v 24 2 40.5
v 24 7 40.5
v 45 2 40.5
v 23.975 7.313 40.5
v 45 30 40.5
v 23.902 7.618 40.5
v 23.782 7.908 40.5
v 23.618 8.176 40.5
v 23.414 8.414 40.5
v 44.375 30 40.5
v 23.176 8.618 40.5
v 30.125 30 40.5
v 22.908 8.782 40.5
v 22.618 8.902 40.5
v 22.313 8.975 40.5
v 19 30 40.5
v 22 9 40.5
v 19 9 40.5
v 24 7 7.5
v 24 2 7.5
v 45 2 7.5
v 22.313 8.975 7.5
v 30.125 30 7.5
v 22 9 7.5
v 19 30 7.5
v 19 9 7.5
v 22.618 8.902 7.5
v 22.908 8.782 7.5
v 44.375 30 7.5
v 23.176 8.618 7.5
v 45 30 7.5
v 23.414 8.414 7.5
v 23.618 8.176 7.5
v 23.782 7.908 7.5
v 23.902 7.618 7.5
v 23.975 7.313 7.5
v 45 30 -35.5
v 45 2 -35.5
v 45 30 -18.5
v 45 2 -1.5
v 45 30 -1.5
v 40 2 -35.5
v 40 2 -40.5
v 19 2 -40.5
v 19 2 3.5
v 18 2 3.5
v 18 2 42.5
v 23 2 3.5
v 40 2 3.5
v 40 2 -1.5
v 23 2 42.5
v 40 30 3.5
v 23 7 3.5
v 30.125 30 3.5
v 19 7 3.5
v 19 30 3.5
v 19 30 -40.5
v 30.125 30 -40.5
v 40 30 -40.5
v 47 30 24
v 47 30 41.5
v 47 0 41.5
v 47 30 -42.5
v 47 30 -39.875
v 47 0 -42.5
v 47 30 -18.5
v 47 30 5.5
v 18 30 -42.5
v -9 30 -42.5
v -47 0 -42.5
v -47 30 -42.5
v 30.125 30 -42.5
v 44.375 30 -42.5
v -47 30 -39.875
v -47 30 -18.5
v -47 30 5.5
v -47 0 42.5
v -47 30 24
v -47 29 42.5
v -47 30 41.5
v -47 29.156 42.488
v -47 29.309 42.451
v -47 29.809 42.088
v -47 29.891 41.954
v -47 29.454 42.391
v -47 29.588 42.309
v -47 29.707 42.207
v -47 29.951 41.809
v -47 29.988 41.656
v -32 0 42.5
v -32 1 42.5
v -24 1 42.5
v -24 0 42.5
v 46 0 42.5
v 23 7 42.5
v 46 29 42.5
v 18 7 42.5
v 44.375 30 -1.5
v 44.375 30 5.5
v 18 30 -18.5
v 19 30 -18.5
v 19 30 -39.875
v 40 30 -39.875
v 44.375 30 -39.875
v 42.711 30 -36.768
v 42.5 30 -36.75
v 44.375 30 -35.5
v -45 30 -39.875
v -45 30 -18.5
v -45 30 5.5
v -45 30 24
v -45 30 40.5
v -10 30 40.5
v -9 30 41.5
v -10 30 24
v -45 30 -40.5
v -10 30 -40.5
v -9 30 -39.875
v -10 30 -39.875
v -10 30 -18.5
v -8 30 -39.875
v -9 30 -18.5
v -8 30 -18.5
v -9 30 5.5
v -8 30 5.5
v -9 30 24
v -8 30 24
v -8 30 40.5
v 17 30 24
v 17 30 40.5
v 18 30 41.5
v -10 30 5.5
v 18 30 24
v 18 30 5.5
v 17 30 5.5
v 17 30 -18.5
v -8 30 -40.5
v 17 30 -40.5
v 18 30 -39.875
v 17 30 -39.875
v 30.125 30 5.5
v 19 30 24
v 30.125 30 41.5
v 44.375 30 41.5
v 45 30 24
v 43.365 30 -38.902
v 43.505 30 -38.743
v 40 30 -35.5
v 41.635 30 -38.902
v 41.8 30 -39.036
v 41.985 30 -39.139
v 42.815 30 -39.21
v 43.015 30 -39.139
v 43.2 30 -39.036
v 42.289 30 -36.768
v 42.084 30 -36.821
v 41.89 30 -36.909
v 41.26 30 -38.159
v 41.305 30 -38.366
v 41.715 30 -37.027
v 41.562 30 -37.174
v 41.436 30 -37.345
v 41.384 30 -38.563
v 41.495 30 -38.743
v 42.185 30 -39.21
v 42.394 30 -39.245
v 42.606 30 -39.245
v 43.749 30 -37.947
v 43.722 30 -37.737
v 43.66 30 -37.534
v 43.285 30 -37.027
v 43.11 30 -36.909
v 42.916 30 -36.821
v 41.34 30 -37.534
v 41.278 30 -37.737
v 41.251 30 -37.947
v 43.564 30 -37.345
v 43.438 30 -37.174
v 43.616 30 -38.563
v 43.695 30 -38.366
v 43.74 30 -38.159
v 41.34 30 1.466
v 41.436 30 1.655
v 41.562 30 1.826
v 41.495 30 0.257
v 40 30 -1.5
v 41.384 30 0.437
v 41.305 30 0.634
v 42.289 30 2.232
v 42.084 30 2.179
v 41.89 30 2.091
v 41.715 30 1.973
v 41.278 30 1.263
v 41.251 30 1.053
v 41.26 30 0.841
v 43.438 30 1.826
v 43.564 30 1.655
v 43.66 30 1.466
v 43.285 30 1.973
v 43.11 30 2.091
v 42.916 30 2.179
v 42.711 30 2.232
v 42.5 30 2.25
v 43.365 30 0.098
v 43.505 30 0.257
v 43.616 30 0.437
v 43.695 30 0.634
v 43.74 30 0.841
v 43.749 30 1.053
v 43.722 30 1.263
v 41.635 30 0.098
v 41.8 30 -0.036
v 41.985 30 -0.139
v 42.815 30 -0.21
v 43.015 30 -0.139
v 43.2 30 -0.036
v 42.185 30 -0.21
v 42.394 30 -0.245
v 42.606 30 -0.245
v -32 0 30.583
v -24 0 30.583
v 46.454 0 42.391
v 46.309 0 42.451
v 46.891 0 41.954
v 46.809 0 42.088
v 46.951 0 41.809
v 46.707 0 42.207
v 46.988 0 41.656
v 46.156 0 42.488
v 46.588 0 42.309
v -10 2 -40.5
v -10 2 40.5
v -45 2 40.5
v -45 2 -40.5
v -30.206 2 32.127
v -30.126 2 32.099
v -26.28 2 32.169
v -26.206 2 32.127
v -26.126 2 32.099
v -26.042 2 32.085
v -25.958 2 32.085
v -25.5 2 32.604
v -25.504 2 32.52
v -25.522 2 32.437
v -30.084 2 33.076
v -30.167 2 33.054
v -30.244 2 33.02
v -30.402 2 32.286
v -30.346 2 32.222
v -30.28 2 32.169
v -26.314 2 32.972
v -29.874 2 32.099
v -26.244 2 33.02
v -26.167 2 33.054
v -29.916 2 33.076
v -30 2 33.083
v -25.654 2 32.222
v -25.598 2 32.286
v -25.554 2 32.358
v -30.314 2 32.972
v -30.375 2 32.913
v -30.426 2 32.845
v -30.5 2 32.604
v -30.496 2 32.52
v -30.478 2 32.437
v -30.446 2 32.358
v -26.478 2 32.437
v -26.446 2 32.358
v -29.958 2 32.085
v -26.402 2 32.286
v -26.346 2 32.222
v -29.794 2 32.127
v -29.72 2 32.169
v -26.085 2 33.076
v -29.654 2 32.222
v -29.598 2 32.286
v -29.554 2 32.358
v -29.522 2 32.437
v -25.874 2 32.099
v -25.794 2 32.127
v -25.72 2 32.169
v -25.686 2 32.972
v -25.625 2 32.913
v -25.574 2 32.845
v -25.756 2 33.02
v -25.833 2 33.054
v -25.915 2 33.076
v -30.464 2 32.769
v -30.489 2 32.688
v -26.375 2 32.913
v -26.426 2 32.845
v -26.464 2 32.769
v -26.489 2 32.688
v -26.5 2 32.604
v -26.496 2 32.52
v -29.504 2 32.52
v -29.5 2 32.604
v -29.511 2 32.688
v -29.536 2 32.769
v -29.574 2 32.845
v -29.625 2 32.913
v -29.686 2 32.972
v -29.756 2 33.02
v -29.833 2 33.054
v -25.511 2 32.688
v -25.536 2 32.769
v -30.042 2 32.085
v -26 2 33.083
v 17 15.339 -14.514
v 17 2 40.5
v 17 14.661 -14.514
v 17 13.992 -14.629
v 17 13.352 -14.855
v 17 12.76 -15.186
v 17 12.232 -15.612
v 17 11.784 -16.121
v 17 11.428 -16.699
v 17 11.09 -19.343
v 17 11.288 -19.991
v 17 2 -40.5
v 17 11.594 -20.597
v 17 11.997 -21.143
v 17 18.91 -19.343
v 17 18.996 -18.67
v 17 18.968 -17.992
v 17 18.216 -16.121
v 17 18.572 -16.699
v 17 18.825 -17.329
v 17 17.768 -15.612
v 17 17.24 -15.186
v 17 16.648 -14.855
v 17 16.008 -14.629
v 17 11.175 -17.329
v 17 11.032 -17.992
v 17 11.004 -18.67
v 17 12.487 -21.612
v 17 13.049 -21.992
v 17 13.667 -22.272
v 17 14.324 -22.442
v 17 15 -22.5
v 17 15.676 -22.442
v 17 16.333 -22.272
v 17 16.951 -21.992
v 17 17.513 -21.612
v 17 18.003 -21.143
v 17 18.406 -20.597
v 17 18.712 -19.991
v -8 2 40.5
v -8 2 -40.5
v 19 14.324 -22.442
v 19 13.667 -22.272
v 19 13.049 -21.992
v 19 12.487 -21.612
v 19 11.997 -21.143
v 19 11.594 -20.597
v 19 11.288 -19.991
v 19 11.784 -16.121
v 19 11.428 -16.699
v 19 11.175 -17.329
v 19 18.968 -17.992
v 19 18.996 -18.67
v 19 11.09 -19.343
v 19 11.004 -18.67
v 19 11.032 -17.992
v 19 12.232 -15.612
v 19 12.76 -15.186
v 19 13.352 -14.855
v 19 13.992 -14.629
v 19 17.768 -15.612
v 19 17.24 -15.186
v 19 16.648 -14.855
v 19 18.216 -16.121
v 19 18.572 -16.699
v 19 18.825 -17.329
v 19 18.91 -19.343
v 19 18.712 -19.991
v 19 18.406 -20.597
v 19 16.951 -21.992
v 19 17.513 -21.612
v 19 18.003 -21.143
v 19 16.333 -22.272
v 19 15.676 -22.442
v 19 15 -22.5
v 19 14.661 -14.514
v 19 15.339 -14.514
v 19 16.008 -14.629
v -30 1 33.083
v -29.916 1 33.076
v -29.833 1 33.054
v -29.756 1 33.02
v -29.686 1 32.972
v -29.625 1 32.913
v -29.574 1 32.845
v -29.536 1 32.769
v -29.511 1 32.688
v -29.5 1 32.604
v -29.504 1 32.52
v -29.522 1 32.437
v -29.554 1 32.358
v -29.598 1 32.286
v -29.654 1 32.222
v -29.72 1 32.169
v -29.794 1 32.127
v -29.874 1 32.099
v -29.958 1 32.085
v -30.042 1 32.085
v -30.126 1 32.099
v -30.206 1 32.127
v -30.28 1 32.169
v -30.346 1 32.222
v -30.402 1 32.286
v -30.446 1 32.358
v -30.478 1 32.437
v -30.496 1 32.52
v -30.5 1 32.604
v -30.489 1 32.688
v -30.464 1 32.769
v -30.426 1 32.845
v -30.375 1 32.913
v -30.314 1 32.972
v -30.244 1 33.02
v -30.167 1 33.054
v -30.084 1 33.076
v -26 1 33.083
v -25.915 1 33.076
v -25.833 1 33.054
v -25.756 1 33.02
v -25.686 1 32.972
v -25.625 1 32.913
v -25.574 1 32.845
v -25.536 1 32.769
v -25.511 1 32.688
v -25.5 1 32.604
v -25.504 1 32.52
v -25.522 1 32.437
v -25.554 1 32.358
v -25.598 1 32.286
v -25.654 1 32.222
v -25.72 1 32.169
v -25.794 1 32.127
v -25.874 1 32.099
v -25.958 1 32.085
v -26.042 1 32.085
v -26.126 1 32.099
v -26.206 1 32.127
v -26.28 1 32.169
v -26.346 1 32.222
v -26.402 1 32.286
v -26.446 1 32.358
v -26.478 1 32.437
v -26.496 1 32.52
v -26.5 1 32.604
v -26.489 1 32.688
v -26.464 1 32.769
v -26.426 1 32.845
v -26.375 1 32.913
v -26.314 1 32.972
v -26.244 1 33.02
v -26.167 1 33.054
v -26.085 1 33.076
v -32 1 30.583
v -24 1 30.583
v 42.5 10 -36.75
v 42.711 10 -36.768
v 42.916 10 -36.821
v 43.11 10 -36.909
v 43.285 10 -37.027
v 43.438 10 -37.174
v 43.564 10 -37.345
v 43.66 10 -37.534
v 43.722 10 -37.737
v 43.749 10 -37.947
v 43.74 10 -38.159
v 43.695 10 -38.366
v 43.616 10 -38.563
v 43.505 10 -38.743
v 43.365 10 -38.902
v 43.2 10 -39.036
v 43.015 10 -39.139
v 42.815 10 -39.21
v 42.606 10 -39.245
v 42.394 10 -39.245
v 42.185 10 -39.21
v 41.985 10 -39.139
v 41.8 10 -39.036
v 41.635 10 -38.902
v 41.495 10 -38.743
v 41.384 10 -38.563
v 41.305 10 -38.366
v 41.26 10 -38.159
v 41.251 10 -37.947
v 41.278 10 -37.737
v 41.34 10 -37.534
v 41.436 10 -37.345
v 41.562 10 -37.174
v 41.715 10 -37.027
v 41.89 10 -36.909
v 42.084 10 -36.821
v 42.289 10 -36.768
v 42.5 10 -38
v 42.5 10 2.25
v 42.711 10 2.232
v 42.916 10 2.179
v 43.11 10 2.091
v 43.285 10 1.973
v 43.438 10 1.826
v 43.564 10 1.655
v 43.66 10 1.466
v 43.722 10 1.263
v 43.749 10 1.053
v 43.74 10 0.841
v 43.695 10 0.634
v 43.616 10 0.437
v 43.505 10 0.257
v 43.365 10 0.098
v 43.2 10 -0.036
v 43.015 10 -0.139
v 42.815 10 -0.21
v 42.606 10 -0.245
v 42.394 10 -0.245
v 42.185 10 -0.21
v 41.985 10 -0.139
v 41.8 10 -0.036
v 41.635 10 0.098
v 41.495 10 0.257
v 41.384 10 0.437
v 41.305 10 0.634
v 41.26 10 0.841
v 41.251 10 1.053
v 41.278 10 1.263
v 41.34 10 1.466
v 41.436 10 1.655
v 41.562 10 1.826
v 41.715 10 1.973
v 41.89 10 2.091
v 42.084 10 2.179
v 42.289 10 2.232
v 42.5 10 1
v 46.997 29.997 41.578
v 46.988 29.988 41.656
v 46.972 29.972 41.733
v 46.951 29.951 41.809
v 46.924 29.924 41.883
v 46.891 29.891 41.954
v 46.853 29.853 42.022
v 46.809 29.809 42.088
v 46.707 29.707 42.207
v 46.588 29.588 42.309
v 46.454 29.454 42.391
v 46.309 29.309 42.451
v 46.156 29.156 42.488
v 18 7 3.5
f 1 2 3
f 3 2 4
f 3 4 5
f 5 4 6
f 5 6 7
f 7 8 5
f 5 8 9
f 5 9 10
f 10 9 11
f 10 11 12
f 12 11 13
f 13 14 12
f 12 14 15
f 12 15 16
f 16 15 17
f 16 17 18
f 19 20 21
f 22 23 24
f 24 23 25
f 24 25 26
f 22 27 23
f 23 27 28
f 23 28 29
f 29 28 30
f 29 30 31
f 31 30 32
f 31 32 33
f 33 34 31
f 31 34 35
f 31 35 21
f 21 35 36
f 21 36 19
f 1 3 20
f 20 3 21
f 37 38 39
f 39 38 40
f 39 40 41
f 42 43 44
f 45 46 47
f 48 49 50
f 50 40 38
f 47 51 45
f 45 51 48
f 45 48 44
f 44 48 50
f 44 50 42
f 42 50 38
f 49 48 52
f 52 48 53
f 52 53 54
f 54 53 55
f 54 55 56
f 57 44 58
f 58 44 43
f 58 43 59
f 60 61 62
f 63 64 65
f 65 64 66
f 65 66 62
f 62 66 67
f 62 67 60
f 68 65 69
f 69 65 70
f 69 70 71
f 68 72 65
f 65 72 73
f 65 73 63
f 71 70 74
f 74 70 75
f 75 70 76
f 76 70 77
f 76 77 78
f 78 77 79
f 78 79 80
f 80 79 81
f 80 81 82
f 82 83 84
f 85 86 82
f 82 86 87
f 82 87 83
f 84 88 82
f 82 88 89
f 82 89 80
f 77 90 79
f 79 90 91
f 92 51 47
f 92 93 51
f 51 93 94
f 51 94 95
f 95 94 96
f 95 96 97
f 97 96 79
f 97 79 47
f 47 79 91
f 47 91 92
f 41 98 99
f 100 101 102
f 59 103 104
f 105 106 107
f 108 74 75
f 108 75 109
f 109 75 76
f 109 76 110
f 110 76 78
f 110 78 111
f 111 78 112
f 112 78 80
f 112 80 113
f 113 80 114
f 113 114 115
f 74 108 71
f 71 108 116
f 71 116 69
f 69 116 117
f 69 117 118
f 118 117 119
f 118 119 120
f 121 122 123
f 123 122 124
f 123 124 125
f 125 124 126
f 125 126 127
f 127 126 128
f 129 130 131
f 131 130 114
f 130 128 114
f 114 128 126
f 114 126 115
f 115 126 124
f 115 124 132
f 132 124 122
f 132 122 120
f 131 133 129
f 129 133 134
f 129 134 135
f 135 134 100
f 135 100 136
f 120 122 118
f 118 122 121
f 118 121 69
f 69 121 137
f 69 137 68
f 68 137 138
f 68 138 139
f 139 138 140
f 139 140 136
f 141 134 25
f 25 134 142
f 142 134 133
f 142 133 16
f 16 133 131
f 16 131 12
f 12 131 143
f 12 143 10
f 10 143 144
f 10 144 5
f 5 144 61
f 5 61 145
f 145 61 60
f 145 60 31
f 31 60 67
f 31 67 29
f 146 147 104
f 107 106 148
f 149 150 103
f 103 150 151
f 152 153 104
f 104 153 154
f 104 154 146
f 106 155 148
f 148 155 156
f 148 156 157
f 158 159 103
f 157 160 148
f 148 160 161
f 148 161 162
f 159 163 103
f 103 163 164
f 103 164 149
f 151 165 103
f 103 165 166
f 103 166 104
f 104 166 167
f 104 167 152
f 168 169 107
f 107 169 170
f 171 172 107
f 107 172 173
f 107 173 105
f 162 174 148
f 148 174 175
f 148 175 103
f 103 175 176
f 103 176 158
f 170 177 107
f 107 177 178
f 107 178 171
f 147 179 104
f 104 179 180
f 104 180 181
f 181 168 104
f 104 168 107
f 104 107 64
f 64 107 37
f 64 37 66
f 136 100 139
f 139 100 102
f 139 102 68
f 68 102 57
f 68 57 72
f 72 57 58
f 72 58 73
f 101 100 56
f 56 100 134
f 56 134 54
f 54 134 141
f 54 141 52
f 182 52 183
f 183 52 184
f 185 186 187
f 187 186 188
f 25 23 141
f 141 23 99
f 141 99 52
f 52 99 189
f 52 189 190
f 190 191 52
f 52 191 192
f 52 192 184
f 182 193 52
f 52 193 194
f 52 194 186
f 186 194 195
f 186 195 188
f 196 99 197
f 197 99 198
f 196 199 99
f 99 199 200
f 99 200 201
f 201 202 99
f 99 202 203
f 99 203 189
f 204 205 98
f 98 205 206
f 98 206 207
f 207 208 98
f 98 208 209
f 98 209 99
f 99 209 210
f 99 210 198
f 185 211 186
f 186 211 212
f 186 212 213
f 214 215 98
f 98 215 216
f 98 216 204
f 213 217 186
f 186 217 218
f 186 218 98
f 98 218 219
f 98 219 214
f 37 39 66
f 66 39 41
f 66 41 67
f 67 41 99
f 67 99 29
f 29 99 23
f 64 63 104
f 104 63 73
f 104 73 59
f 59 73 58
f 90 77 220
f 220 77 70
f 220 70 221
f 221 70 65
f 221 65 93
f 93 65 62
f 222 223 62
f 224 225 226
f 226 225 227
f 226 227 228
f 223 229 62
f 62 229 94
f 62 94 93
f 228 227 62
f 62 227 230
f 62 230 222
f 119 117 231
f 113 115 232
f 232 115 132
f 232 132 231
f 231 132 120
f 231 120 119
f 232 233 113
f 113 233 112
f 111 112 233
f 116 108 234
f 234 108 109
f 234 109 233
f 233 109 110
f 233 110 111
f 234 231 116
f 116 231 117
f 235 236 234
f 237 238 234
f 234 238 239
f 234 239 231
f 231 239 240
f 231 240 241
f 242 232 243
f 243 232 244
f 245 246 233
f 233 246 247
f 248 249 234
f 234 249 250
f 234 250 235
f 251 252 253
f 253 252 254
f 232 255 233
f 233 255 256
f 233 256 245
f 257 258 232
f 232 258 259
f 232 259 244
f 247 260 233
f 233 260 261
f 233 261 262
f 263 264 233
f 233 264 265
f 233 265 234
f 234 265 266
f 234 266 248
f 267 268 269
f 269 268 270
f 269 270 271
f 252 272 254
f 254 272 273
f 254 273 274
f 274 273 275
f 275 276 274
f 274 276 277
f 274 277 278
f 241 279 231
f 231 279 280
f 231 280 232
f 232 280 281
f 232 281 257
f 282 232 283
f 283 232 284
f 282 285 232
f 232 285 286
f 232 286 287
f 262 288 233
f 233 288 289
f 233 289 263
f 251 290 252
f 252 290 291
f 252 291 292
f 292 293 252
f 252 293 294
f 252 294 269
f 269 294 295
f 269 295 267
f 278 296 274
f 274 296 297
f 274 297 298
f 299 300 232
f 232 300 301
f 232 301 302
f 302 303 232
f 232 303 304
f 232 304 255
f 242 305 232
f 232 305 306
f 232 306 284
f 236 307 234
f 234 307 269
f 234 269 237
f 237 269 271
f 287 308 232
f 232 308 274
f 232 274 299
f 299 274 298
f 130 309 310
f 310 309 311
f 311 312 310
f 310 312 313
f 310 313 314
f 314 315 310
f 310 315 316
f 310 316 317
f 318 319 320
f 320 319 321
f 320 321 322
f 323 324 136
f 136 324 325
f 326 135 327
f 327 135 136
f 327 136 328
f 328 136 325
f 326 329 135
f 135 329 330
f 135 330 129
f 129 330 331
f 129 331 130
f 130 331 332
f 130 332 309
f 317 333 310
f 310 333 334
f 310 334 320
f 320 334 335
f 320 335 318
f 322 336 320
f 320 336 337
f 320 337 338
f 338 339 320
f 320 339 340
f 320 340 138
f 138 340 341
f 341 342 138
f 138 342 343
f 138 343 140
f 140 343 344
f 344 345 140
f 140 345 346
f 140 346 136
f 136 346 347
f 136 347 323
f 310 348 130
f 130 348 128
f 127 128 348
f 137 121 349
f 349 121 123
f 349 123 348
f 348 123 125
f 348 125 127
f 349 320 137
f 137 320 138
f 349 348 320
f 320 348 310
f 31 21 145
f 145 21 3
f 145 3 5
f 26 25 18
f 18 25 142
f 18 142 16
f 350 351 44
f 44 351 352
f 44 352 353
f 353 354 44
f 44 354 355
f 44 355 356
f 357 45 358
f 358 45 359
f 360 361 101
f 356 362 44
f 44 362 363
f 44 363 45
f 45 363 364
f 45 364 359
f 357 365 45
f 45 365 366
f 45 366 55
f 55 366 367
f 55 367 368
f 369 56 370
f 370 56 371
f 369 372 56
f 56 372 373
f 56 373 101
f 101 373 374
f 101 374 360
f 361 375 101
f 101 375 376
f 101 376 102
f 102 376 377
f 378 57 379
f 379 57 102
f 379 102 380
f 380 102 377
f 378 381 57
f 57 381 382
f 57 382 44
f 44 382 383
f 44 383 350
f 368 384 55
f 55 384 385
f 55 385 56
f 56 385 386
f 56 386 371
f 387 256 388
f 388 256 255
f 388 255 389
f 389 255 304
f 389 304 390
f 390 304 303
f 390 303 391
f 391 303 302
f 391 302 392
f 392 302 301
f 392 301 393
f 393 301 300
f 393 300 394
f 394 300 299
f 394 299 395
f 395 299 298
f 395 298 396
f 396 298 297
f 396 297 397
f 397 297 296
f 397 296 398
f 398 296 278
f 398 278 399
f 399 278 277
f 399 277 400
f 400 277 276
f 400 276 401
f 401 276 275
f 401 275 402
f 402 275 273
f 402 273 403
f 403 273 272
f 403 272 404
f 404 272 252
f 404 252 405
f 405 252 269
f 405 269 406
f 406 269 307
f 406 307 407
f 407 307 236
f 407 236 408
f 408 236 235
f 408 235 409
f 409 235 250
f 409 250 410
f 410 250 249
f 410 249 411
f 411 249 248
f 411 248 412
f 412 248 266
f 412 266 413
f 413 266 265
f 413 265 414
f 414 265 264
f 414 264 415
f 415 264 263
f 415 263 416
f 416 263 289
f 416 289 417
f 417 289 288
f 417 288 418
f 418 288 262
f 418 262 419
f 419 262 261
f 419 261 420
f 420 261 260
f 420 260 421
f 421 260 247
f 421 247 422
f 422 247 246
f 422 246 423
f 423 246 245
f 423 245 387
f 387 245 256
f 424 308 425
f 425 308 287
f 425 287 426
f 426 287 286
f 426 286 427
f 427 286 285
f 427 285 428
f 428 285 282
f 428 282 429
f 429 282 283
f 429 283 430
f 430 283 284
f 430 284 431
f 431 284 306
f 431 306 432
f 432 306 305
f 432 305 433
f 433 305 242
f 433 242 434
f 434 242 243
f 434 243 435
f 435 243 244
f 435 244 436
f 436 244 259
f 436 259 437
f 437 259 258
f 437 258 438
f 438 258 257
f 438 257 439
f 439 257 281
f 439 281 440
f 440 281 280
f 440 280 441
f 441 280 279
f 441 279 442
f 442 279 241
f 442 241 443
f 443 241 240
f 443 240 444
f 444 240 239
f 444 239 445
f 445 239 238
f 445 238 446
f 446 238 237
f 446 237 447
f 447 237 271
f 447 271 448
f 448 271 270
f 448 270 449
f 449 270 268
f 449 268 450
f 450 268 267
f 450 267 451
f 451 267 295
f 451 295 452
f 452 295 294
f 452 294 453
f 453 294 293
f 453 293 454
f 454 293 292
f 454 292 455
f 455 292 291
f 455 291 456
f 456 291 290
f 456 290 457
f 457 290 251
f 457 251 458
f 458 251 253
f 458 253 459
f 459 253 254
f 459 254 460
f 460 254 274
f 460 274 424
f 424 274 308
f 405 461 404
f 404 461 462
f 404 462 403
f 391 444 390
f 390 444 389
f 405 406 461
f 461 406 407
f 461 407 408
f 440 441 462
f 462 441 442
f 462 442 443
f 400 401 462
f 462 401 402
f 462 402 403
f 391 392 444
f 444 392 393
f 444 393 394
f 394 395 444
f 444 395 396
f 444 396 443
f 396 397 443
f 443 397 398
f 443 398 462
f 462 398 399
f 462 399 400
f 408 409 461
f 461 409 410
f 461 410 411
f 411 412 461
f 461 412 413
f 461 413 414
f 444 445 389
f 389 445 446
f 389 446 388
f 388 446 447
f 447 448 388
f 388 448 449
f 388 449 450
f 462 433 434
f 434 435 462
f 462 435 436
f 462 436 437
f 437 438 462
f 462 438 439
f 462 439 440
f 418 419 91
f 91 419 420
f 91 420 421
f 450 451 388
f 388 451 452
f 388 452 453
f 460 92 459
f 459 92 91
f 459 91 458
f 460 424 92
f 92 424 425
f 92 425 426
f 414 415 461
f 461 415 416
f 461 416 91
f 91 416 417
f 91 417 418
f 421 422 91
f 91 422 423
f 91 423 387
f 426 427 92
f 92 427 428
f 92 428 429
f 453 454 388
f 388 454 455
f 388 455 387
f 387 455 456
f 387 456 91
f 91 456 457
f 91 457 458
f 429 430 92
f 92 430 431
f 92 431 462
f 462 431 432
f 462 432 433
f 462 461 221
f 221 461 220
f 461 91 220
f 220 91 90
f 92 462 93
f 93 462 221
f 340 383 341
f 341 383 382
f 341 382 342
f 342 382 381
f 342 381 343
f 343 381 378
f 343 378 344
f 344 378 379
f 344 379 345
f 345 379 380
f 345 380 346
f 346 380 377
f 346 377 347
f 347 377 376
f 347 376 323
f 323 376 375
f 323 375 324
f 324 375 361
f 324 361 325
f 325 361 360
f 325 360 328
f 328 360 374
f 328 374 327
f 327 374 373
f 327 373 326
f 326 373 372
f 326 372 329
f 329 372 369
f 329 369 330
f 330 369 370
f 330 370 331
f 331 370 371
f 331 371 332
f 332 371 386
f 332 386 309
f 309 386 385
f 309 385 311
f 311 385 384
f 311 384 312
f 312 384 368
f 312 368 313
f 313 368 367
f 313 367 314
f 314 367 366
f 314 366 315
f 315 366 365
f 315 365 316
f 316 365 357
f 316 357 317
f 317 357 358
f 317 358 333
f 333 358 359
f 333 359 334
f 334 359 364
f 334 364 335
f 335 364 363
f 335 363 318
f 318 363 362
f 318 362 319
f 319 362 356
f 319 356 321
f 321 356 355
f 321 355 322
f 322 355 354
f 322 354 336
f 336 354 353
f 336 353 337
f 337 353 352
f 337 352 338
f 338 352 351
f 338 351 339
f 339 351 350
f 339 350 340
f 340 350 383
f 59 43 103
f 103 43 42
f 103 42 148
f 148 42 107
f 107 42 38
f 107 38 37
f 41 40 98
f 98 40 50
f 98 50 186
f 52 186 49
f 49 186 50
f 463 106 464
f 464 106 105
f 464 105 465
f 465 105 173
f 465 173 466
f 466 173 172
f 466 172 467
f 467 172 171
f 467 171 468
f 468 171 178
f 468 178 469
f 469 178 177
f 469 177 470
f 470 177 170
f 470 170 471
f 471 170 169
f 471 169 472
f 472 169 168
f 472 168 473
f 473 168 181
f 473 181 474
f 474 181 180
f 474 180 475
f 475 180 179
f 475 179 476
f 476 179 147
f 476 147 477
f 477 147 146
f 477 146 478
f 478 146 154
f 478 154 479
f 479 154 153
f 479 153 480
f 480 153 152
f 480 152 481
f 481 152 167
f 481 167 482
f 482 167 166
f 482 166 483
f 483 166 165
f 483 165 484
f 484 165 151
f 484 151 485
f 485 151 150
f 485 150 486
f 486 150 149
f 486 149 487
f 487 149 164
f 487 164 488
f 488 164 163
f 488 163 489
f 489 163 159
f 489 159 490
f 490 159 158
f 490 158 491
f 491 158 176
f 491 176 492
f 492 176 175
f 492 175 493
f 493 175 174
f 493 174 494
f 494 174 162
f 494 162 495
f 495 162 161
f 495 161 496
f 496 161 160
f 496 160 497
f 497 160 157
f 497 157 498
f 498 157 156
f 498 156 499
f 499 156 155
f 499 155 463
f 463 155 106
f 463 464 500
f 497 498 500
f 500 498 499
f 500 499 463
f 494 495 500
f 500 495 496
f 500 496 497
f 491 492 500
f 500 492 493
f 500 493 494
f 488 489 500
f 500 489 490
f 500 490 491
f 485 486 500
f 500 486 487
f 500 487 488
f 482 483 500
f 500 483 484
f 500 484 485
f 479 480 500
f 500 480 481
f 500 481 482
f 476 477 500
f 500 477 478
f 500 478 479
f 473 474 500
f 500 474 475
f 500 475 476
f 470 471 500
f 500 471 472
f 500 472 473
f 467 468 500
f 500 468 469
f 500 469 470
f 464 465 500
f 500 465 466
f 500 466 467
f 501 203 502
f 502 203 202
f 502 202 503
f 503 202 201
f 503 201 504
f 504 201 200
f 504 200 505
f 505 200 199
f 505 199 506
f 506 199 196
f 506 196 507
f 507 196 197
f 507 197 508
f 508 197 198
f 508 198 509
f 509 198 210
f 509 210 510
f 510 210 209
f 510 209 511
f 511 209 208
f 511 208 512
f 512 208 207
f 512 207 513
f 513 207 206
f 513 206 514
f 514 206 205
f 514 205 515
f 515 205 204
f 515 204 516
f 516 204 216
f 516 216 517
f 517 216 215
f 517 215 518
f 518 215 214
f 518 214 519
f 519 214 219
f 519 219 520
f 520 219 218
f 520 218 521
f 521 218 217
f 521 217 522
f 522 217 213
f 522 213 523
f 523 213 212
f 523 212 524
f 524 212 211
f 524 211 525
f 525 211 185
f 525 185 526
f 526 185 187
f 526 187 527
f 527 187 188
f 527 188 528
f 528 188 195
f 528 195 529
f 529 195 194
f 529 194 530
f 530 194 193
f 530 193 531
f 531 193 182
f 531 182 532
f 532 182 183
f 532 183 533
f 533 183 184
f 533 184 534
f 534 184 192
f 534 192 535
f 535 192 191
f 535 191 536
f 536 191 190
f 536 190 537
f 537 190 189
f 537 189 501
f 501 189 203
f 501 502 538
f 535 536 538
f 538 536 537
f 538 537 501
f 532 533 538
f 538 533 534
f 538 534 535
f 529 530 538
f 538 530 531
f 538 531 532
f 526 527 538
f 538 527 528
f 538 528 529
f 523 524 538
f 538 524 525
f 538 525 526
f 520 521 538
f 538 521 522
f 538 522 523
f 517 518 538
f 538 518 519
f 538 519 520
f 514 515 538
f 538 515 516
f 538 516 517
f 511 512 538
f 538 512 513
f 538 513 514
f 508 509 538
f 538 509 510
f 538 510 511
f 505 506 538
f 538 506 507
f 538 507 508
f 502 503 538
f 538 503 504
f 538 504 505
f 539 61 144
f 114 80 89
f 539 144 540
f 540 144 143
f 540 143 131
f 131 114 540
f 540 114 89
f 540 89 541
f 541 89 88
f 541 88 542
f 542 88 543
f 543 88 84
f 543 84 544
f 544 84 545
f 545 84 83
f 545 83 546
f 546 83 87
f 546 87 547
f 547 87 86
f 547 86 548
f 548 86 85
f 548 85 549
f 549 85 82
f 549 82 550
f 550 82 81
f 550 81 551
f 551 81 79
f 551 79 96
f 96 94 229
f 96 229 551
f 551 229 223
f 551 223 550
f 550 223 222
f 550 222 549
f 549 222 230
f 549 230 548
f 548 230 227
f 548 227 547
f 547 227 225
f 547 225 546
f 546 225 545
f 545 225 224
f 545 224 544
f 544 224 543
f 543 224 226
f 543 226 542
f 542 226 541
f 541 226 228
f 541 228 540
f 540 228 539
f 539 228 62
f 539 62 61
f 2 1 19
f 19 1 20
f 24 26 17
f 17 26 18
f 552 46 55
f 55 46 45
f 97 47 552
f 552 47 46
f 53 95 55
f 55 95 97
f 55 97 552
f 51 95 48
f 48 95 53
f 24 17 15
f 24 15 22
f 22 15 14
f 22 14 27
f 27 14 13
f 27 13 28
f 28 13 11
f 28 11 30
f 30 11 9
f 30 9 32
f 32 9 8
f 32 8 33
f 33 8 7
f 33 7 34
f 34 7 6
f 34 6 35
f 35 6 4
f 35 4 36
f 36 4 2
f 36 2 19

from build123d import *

# Parameters (mm, degrees)
SKETCH1_W           = 94
SKETCH1_H           = 85
BOSS_EXTRUDE1_DEPTH = 30
SKETCH2_W           = 35
SKETCH2_H           = 81
SKETCH2_W_2         = 25
SKETCH2_W_3         = 26
SKETCH2_H_2         = 33
SKETCH2_H_3         = 44
CUT_EXTRUDE1_DEPTH  = 28
SKETCH3_R           = 0.5
CUT_EXTRUDE2_DEPTH  = 28
SKETCH4_W           = 8
SKETCH4_H           = 11.916957973
CUT_EXTRUDE3_DEPTH  = 1
SKETCH5_R           = 4
CUT_EXTRUDE4_DEPTH  = 2
SKETCH6_W           = 5
SKETCH6_H           = 5
BOSS_EXTRUDE3_DEPTH = 28
SKETCH7_R           = 1.25
CUT_EXTRUDE5_DEPTH  = 20
FILLET1_R           = 1
SKETCH9_W           = 5
SKETCH9_H           = 33
BOSS_EXTRUDE4_DEPTH = 7
SKETCH10_W          = 5
SKETCH10_H          = 5
CUT_EXTRUDE7_DEPTH  = 39
FILLET3_R           = 2


with BuildPart() as part:
    # Sketch1 → Boss-Extrude1 (new body)
    with BuildSketch(Plane(origin=(0, 0, 0), x_dir=(1, 0, 0), z_dir=(0, 1, 0))):
        Rectangle(SKETCH1_W, SKETCH1_H)
    extrude(amount=BOSS_EXTRUDE1_DEPTH)

    # Sketch2 → Cut-Extrude1 (cut)
    with BuildSketch(Plane(origin=(0, 30, 0), x_dir=(1, 0, 0), z_dir=(0, 1, 0))):
        with Locations((-27.5, 0)):
            Rectangle(SKETCH2_W, SKETCH2_H)
        with Locations((4.5, 0)):
            Rectangle(SKETCH2_W_2, SKETCH2_H)
        with Locations((32, -24)):
            Rectangle(SKETCH2_W_3, SKETCH2_H_2)
        with Locations((32, 18.5)):
            Rectangle(SKETCH2_W_3, SKETCH2_H_3)
    extrude(amount=-CUT_EXTRUDE1_DEPTH, mode=Mode.SUBTRACT)

    # Sketch3 → Cut-Extrude2 (cut)
    with BuildSketch(Plane(origin=(0, 2, 0), x_dir=(1, 0, 0), z_dir=(0, 1, 0))):
        with Locations(Location((-30, -32.583042027, 0), (0, 0, 270))):
            Circle(SKETCH3_R)
        with Locations(Location((-26, -32.583042027, 0), (0, 0, 270))):
            Circle(SKETCH3_R)
    extrude(amount=-CUT_EXTRUDE2_DEPTH, mode=Mode.SUBTRACT)

    # Sketch4 → Cut-Extrude3 (cut)
    with BuildSketch(Plane(origin=(0, 0, 0), x_dir=(-1, 0, 0), z_dir=(0, -1, 0))):
        with Locations((28, -36.541521014)):
            Rectangle(SKETCH4_W, SKETCH4_H)
    extrude(amount=-CUT_EXTRUDE3_DEPTH, mode=Mode.SUBTRACT)

    # Sketch5 → Cut-Extrude4 (cut)
    with BuildSketch(Plane(origin=(19, 0, 0), x_dir=(0, 0, -1), z_dir=(1, 0, 0))):
        with Locations((18.5, 15)):
            Circle(SKETCH5_R)
    extrude(amount=-CUT_EXTRUDE4_DEPTH, mode=Mode.SUBTRACT)

    # Sketch6 → Boss-Extrude3 (add)
    with BuildSketch(Plane(origin=(0, 2, 0), x_dir=(1, 0, 0), z_dir=(0, 1, 0))):
        with Locations((42.5, 38)):
            Rectangle(SKETCH6_W, SKETCH6_H)
        with Locations((42.5, -1)):
            Rectangle(SKETCH6_W, SKETCH6_H)
    extrude(amount=BOSS_EXTRUDE3_DEPTH)

    # Sketch7 → Cut-Extrude5 (cut)
    with BuildSketch(Plane(origin=(0, 30, 0), x_dir=(1, 0, 0), z_dir=(0, 1, 0))):
        with Locations(Location((42.5, 38, 0), (0, 0, 270))):
            Circle(SKETCH7_R)
        with Locations(Location((42.5, -1, 0), (0, 0, 270))):
            Circle(SKETCH7_R)
    extrude(amount=-CUT_EXTRUDE5_DEPTH, mode=Mode.SUBTRACT)

    # Fillet1
    fillet1_edges = [part.edges().sort_by_distance(p)[0] for p in [
        (0, 30, 42.5),
        (47, 15, 42.5),
    ]]
    fillet(fillet1_edges, radius=FILLET1_R)

    # Sketch9 → Boss-Extrude4 (add)
    with BuildSketch(Plane(origin=(0, 2, 0), x_dir=(1, 0, 0), z_dir=(0, 1, 0))):
        with Locations((21.5, -24)):
            Rectangle(SKETCH9_W, SKETCH9_H)
    extrude(amount=BOSS_EXTRUDE4_DEPTH)

    # Sketch10 → Cut-Extrude7 (cut)
    with BuildSketch(Plane.XY.offset(42.5)):
        with Locations((20.5, 4.5)):
            Rectangle(SKETCH10_W, SKETCH10_H)
    extrude(amount=-CUT_EXTRUDE7_DEPTH, mode=Mode.SUBTRACT)

    # Fillet3
    fillet3_edges = [part.edges().sort_by_distance(p)[0] for p in [
        (24, 9, 24),
    ]]
    fillet(fillet3_edges, radius=FILLET3_R)


solid = part.part
